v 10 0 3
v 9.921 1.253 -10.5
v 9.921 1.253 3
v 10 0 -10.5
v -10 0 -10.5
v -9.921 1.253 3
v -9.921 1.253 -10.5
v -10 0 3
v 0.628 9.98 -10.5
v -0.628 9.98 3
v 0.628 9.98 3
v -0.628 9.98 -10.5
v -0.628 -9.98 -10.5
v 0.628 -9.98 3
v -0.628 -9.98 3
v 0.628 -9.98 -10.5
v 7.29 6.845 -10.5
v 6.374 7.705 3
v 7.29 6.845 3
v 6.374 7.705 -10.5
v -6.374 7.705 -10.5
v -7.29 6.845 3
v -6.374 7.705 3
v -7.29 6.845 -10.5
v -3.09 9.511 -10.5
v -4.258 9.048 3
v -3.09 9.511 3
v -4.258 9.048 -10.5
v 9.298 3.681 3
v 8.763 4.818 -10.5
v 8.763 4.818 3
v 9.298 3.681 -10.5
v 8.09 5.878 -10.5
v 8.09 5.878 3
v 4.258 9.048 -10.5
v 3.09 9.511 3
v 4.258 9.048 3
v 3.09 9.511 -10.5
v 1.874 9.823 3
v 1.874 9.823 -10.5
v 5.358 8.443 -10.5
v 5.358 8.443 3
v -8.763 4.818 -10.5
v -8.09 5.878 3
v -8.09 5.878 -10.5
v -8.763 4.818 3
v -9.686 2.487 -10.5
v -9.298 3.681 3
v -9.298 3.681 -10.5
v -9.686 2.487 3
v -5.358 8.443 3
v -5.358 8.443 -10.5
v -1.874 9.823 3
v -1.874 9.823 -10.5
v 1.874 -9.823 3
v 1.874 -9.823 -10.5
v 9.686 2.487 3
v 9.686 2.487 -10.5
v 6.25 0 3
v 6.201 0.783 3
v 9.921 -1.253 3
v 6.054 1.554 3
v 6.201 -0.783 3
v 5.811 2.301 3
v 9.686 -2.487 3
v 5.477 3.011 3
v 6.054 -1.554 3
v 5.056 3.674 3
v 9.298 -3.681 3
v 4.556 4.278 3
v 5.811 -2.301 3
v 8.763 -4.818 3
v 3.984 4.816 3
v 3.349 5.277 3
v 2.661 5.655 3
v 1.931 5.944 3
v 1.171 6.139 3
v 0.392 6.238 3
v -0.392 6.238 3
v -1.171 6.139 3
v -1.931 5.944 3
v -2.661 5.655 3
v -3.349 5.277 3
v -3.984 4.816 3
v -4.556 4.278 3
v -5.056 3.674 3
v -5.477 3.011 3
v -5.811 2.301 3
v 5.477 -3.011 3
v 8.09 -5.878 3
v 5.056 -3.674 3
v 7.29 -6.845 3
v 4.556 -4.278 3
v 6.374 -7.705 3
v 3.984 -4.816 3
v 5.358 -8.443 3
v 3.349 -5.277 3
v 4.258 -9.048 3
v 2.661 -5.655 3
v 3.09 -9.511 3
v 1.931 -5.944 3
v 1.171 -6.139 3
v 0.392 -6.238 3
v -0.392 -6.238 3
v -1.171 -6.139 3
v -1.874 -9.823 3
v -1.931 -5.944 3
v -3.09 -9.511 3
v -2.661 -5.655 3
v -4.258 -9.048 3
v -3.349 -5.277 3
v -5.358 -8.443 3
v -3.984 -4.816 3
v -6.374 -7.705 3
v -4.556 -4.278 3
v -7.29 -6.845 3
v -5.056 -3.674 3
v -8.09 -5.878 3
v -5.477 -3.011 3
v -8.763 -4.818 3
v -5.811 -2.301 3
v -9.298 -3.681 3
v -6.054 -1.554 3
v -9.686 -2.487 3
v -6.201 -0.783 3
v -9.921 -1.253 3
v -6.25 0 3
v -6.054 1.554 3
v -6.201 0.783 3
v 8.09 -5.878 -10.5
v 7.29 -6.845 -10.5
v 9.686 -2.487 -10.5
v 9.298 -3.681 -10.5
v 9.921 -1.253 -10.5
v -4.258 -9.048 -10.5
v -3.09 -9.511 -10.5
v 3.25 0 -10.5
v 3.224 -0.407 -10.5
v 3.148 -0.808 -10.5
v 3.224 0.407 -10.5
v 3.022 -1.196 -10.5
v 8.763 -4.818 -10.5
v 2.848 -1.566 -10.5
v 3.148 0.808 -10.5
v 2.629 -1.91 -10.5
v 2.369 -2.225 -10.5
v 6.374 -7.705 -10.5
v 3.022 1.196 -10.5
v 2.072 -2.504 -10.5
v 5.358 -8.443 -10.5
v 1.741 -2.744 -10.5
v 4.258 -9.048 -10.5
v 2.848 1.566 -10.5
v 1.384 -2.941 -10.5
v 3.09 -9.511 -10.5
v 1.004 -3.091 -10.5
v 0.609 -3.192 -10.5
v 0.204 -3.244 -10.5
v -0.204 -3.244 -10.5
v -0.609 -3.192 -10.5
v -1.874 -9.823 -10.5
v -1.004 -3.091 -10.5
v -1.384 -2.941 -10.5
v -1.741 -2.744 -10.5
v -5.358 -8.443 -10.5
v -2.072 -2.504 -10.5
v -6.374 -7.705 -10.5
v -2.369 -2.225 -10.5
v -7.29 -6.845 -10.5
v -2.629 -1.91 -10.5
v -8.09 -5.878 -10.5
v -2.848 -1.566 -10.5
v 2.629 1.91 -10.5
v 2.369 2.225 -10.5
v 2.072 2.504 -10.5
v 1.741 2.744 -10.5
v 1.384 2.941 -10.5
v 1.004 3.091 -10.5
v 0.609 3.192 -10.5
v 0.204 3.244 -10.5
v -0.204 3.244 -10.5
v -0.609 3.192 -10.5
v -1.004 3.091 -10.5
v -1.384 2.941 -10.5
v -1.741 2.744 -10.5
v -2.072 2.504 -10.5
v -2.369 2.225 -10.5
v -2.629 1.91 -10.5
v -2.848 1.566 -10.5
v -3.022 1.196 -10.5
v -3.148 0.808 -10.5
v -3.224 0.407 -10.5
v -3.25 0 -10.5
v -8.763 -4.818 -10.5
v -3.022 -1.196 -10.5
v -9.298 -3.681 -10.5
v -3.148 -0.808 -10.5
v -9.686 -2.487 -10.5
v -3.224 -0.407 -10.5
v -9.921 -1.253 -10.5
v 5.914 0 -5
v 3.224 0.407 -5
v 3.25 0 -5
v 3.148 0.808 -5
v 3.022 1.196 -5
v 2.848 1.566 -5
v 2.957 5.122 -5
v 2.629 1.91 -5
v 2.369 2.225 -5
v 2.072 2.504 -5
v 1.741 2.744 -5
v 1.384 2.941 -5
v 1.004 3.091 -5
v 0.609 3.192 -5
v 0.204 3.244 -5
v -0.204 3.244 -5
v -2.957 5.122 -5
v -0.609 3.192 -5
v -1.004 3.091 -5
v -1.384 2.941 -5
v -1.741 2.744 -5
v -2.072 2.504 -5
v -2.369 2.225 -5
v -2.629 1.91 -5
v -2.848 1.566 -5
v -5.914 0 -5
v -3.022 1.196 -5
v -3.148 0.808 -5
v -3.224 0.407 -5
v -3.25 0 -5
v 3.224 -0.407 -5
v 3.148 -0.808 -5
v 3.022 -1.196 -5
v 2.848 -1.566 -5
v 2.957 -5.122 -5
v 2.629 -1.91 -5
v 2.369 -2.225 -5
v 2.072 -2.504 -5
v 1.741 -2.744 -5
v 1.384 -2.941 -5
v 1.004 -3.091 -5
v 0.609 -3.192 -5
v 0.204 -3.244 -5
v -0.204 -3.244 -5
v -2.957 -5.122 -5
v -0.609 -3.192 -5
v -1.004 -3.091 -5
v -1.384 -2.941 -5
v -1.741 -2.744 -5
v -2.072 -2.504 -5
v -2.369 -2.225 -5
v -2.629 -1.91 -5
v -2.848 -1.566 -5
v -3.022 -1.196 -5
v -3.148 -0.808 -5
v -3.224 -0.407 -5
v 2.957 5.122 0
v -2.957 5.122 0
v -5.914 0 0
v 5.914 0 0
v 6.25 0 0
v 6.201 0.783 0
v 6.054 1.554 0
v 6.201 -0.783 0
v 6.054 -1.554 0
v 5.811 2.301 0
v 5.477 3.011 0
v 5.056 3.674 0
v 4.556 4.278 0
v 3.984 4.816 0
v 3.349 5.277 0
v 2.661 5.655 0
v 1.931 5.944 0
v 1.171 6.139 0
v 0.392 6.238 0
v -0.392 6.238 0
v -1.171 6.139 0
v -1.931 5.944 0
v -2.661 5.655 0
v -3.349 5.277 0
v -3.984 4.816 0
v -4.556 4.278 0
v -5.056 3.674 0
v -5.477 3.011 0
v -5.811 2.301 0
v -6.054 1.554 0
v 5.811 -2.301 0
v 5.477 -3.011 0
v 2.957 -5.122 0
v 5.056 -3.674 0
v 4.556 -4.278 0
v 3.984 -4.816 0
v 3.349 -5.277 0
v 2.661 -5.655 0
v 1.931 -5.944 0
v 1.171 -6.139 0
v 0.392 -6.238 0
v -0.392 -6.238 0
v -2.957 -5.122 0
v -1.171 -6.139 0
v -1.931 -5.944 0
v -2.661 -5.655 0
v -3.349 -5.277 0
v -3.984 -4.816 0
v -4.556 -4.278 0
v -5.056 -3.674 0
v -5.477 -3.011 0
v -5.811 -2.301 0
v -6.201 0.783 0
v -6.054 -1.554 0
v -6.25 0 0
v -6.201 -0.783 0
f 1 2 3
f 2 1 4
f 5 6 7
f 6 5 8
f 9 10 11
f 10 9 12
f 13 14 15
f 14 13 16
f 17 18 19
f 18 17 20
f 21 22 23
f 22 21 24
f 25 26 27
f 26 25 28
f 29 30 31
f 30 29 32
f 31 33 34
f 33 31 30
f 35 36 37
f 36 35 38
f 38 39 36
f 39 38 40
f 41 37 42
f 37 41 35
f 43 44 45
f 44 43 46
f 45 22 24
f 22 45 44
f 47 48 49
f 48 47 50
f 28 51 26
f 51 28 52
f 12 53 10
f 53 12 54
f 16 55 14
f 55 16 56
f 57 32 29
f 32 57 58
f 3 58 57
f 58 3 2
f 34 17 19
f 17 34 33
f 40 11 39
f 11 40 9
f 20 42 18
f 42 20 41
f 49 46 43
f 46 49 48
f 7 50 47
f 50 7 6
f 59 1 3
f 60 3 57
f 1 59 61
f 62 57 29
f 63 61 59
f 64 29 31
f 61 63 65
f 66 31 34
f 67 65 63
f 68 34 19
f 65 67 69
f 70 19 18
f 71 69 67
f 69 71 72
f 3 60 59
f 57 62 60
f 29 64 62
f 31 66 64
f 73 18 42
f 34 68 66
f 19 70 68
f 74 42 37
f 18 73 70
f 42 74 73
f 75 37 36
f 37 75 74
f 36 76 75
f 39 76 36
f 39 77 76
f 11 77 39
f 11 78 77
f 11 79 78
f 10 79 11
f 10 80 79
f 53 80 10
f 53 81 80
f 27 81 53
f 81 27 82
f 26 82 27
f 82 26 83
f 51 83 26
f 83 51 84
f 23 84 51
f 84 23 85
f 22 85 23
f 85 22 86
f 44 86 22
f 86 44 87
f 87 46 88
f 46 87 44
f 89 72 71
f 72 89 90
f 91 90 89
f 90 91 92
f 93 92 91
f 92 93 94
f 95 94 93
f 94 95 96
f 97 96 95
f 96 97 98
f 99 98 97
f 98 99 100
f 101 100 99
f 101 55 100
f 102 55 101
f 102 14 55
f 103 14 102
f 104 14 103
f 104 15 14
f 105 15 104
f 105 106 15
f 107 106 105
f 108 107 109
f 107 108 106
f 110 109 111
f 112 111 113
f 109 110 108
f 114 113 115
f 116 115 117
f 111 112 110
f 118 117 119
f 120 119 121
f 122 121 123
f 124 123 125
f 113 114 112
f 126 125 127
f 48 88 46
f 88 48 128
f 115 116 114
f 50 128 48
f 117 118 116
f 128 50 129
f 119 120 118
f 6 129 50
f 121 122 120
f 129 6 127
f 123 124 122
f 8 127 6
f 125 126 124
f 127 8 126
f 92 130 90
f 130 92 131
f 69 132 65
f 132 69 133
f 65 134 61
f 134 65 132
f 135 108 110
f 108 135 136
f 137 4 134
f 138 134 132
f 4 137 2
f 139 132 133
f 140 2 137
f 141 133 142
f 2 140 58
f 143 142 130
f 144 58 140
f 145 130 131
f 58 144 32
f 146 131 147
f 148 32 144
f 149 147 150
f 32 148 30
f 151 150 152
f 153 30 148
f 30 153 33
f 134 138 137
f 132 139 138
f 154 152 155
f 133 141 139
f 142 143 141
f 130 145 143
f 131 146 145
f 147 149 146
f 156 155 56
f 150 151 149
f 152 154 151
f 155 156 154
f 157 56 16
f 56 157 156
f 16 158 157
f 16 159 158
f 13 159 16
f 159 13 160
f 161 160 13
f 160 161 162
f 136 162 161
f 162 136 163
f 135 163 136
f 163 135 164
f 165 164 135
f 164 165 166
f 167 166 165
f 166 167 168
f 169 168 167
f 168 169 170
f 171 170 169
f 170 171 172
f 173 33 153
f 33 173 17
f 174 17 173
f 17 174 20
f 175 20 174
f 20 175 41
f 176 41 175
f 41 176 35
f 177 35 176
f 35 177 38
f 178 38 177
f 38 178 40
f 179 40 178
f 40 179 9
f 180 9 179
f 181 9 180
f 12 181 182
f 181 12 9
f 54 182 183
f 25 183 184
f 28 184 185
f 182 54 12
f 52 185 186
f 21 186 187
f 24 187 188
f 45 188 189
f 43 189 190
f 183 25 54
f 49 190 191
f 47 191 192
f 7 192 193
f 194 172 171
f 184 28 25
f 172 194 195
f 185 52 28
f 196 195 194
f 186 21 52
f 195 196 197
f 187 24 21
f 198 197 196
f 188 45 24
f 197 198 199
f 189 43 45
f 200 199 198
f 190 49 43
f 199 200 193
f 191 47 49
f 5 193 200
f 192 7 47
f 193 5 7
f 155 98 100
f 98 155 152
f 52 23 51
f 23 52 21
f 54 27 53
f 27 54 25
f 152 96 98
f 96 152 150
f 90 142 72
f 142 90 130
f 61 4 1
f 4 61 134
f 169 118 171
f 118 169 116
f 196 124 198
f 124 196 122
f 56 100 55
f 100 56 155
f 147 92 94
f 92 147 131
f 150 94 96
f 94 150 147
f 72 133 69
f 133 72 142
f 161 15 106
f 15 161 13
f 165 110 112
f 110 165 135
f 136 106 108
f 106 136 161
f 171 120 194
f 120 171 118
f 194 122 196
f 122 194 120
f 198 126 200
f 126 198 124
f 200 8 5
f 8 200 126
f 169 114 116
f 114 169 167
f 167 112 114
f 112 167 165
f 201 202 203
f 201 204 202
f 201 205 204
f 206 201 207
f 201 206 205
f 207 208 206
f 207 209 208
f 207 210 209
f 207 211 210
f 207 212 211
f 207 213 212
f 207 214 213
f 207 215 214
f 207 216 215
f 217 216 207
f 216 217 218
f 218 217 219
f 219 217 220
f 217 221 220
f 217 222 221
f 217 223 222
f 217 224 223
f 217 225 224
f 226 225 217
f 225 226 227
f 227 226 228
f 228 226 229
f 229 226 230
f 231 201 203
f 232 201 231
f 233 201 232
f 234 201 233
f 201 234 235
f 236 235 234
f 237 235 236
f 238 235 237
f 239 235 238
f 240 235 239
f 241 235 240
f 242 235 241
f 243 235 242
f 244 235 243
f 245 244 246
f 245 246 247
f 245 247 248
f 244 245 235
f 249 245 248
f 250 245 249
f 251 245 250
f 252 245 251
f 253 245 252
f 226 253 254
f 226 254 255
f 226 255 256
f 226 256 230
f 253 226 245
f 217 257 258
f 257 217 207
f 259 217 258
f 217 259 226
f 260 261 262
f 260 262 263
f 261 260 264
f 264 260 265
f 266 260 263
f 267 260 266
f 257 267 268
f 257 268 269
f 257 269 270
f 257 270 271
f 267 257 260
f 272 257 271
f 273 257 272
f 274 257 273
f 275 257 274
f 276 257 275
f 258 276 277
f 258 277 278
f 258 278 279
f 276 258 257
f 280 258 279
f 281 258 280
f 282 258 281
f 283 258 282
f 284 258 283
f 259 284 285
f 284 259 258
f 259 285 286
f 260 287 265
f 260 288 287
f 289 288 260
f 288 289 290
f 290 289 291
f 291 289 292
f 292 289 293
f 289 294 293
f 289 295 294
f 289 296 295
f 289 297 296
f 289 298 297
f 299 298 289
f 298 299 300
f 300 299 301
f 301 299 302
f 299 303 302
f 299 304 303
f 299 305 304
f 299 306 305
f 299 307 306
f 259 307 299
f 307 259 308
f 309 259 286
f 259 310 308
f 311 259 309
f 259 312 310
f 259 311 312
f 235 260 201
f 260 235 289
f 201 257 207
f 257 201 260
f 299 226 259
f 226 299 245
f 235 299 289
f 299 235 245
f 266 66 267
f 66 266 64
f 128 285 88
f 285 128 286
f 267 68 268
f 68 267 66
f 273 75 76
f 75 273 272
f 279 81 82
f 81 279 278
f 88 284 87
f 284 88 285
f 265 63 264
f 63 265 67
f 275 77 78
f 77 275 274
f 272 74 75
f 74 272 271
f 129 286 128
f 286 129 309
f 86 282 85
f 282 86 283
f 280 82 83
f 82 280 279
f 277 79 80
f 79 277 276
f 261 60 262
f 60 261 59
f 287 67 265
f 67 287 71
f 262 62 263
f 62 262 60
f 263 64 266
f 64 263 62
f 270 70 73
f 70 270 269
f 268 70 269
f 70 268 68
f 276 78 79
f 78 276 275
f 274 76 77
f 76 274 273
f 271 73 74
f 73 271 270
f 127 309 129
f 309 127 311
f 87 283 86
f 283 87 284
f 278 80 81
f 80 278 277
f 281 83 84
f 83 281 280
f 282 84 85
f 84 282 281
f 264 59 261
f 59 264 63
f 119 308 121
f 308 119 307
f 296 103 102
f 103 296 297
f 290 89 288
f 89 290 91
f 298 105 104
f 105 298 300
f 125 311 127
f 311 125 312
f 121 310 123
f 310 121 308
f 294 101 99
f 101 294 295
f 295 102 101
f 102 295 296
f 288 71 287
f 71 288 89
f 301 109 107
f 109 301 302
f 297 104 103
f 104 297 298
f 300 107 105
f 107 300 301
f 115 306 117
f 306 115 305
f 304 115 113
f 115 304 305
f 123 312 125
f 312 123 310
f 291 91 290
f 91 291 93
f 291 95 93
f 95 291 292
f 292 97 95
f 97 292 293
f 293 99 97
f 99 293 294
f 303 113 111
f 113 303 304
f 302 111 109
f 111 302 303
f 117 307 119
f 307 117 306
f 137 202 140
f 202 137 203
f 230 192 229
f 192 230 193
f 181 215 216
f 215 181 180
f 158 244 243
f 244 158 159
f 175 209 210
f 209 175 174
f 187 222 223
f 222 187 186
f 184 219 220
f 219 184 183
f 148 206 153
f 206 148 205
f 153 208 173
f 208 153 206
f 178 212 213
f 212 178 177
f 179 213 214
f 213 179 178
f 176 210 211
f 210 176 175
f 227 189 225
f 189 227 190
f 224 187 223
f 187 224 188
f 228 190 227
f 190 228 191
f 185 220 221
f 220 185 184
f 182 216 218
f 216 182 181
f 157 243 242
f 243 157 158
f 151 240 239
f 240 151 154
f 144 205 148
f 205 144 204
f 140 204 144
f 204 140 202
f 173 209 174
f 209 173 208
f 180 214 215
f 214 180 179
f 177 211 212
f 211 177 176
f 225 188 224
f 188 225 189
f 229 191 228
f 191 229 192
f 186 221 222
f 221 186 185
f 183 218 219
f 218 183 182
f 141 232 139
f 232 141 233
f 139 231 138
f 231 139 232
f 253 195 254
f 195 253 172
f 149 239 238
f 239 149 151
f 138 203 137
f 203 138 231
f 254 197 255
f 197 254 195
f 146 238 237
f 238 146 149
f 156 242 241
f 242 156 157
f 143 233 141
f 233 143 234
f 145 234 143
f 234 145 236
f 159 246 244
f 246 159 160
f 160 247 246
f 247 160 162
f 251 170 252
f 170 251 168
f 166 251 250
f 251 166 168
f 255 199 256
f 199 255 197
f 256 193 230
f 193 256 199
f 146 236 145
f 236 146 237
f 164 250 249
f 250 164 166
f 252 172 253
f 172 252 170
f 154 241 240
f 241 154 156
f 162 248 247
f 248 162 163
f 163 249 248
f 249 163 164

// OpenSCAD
$fn = 50;

difference() {
	union() {
		translate(v = [0, 0, -10.5]) {
			cylinder(h = 13.5, r = 10.0);
		}
		#translate(v = [0, 0, -12.0]) {
			cylinder(h = 12, r = 2.875);
		}
	}
	union() {
		translate(v = [0, 0, 0]) {
			rotate(a = [0, 0, 0]) {
				difference() {
					union() {
						translate(v = [0, 0, -5]) {
							linear_extrude(height = 5) {
								polygon(points = [[5.914249999999999, 0.0], [2.957125, 5.1218907443321156], [-2.9571249999999982, 5.1218907443321156], [-5.914249999999999, 7.242867331857232e-16], [-2.9571250000000022, -5.121890744332115], [2.9571249999999956, -5.121890744332118]]);
							}
						}
					}
					union();
				}
			}
		}
		#cylinder(h = 3, r = 6.25);
		#translate(v = [0, 0, -100.0]) {
			cylinder(h = 200, r = 3.25);
		}
	}
}
